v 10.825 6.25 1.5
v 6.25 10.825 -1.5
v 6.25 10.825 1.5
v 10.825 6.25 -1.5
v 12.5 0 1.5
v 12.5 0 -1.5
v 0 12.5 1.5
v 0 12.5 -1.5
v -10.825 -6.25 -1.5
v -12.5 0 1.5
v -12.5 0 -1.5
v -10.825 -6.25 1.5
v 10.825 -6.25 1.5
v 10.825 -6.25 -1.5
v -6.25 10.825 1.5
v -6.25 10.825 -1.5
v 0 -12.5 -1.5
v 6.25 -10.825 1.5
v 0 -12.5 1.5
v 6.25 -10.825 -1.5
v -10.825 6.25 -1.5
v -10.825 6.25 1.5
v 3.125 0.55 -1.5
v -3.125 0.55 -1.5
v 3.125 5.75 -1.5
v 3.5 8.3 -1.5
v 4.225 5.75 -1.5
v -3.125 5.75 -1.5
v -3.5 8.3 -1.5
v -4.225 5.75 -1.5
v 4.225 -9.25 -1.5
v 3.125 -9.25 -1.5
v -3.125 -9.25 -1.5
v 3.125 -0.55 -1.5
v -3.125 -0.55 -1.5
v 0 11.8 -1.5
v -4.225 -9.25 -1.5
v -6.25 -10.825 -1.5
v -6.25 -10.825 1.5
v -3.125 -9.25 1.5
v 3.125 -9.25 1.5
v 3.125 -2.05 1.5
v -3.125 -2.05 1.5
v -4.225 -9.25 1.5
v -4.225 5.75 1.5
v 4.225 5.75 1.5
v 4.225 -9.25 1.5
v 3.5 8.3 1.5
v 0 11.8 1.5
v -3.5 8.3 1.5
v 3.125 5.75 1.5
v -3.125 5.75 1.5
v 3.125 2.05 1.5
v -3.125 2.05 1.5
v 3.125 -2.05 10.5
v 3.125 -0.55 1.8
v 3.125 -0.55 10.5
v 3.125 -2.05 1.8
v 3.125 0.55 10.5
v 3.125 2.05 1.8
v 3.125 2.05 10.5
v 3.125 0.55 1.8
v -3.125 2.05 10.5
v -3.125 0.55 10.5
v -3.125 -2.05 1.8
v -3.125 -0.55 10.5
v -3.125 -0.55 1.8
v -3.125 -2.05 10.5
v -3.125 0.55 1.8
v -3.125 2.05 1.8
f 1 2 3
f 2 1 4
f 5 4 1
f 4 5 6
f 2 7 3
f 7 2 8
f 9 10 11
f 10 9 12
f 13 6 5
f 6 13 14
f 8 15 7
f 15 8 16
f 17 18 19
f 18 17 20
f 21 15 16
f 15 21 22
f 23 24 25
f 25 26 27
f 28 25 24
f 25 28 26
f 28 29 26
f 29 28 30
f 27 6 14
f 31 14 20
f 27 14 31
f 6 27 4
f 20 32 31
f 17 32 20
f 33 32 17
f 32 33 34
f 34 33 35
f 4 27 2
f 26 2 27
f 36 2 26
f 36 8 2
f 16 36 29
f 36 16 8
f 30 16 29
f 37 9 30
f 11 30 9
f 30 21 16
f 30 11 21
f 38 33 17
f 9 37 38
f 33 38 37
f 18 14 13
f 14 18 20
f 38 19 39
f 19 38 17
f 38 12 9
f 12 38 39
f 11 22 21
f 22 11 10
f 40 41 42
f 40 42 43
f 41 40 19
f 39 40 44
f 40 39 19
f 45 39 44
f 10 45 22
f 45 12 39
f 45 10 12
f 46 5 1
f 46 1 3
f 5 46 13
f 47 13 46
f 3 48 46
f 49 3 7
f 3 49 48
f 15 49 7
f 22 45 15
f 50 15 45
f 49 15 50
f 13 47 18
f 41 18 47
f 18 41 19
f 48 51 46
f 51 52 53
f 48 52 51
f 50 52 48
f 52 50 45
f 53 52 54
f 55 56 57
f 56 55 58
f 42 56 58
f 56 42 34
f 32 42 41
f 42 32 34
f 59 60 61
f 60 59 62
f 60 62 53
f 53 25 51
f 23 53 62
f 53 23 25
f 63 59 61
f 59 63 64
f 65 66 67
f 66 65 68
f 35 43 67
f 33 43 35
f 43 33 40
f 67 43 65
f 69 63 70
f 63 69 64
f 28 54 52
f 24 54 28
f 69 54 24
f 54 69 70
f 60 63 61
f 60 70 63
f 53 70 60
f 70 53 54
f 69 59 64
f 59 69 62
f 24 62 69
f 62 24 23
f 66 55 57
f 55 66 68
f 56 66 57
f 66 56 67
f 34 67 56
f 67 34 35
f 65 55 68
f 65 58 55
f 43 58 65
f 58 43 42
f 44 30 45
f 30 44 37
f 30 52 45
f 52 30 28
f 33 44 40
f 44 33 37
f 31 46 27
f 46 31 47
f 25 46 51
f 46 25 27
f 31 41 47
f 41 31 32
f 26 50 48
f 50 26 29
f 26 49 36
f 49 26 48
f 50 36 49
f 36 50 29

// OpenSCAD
$fn=12;

// unit is mm

diameter = 25;
thickness = 3;
slit_width = 1.1;
arrow_base = 7;
support_height = 9;

ab_2 = arrow_base / 2;
ab_4 = arrow_base / 4;
thickness_2 = thickness / 2;
thickness_4 = thickness / 4;
thickness12 = 1.2 * thickness;
diameter_2 = diameter / 2;
diameter_4 = diameter / 4;
diameter_8 = diameter / 8;
sw_2 = slit_width / 2;
sh_2 = support_height / 2;


difference() {

  union() {

    // base

    cylinder(d=diameter, h=thickness, center=true);

    // support

    translate([ 0, thickness_4 + sw_2, thickness_2 + sh_2 ])
      cube([ diameter_4, thickness_2, support_height ], center=true);
    translate([ 0, -thickness_4 - sw_2, thickness_2 + sh_2 ])
      cube([ diameter_4, thickness_2, support_height ], center=true);
  }

  union() {

    // H

    translate([ 0, 0, 0 ])
      cube([ diameter_4, slit_width, thickness12 ], center=true);
    translate([ -diameter_8 - sw_2, -ab_4, 0 ])
      cube([ slit_width, 0.6 * diameter, thickness12 ], center=true);
    translate([ diameter_8 + sw_2, -ab_4, 0 ])
      cube([ slit_width, 0.6 * diameter, thickness12 ], center=true);

    // arrow

    translate([ 0, diameter_2 - 1.2 * ab_2, -0.5 * thickness12 ])
      linear_extrude(thickness12)
        polygon([
          [ -ab_2, 0 ], [ 0, ab_2 ], [ ab_2, 0 ] ]);
  }
}
